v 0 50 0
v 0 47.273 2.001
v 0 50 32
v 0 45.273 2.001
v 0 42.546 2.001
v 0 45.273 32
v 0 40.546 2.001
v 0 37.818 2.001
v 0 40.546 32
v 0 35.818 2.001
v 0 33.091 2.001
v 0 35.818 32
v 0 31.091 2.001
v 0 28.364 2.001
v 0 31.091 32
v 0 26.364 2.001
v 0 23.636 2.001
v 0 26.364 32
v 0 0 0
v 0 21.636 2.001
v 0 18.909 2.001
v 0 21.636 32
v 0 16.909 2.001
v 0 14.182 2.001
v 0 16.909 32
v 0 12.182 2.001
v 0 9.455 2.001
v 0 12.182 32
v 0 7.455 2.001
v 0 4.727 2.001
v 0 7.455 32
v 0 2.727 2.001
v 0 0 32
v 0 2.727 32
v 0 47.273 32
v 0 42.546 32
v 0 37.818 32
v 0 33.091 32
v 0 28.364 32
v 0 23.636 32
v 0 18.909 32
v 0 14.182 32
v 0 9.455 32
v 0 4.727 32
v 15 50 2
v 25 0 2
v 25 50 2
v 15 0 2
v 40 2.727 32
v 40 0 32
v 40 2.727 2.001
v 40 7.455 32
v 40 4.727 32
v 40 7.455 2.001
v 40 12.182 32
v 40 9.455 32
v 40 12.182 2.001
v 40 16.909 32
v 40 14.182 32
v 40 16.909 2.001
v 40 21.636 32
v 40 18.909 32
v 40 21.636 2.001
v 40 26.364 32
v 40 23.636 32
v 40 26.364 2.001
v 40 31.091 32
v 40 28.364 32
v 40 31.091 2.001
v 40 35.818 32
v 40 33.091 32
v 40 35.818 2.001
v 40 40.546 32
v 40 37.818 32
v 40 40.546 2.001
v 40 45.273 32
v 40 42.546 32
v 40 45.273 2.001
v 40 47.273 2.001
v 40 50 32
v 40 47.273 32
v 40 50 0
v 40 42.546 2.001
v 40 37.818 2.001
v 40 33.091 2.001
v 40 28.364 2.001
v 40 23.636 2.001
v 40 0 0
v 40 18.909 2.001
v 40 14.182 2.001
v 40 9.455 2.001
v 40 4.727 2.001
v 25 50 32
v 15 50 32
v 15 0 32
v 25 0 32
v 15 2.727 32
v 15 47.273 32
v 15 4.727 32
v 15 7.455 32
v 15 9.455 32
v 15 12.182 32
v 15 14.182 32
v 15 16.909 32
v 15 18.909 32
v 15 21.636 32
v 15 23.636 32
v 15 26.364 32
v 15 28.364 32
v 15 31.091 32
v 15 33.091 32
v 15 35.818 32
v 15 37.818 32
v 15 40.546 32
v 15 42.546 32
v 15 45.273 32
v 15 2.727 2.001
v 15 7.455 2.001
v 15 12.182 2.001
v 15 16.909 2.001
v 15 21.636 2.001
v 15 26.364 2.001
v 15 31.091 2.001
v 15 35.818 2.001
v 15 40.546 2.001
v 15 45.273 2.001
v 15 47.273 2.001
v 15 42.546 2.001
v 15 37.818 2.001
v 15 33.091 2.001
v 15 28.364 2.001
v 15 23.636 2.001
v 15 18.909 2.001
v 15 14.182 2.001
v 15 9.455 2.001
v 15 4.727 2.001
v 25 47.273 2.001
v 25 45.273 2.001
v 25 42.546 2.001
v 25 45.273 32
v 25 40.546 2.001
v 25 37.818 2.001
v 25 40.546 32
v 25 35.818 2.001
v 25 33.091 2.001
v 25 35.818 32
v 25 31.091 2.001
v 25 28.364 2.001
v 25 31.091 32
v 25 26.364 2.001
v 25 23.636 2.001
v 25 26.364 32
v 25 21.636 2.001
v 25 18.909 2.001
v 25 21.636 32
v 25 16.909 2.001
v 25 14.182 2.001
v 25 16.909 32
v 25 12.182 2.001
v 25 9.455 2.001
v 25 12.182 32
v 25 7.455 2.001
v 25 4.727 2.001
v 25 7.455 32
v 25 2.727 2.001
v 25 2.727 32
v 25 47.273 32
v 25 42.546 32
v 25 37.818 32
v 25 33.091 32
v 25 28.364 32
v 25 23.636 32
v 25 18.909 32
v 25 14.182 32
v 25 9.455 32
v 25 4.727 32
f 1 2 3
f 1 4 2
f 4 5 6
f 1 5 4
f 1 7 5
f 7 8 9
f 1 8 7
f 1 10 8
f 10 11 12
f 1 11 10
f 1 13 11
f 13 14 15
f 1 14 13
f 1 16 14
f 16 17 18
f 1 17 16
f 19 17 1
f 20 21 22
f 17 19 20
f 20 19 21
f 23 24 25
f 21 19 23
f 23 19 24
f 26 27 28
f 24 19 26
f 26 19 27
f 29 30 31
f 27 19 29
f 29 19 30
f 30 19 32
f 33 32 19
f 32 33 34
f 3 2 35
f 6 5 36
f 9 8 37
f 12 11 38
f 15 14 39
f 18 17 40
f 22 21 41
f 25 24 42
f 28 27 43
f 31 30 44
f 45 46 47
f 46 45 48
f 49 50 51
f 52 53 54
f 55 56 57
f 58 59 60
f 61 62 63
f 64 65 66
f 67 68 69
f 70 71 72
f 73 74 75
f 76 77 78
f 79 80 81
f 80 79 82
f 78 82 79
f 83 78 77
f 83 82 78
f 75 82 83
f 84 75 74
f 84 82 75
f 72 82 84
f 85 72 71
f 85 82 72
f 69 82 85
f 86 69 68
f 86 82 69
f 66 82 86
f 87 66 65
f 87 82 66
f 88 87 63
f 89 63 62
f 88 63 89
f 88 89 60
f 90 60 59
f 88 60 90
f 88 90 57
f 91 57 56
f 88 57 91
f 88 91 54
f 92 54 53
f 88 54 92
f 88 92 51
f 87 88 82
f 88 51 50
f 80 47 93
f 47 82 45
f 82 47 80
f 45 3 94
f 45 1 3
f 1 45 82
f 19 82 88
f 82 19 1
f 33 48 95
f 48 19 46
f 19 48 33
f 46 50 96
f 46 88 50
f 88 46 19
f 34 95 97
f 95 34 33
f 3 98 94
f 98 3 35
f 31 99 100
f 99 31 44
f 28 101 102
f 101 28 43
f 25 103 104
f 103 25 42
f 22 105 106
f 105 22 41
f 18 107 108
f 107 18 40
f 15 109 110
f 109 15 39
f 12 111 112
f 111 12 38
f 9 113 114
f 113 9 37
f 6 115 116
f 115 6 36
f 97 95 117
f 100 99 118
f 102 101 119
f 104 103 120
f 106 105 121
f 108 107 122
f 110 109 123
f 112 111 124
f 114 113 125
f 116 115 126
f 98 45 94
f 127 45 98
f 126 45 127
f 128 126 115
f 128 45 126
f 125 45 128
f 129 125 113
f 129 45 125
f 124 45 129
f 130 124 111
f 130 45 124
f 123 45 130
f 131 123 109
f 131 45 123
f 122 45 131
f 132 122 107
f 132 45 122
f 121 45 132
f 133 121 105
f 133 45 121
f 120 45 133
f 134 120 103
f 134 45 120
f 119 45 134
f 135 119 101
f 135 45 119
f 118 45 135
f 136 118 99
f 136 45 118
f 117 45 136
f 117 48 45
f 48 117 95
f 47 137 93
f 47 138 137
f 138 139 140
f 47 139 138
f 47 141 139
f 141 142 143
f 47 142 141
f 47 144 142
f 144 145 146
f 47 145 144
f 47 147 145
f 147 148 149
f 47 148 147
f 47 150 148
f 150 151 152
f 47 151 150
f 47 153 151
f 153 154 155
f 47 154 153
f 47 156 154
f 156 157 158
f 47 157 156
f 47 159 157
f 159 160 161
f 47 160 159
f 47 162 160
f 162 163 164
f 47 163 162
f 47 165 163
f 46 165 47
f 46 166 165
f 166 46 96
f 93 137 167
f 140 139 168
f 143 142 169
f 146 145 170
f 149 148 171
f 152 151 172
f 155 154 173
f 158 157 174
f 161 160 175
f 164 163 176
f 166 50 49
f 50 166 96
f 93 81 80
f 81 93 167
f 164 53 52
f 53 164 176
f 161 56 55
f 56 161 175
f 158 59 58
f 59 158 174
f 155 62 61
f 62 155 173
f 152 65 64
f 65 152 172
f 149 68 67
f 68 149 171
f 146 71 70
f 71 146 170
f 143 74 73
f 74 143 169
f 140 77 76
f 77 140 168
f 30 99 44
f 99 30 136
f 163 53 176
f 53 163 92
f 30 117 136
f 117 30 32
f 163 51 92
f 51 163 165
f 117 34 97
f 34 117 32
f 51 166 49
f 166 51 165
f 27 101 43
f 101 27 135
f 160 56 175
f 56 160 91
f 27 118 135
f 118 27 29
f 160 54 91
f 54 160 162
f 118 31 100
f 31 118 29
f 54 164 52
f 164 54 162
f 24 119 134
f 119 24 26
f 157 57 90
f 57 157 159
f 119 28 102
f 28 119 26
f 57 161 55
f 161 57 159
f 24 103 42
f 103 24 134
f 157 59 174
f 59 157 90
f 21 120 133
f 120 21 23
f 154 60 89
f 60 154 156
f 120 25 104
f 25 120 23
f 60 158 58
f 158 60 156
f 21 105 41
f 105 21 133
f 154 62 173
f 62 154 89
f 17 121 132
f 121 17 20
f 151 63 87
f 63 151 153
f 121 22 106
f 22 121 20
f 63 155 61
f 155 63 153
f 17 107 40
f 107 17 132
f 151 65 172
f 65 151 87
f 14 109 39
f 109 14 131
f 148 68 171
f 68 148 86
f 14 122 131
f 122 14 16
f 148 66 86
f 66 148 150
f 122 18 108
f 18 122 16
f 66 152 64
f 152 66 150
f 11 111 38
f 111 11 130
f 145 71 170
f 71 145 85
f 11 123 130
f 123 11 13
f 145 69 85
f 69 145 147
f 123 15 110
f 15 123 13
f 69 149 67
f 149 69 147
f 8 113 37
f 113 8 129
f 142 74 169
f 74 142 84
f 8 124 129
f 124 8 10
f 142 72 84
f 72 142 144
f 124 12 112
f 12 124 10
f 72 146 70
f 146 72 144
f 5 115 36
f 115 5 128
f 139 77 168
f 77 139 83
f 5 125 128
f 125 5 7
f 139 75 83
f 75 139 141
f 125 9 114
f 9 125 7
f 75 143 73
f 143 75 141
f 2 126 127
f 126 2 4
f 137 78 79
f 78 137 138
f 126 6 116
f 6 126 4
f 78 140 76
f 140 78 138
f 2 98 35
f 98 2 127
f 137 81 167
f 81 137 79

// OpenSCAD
// Generated by SolidPython 1.0.5 on 2021-08-30 19:40:50


difference() {
	union() {
		cube(size = [40, 50, 2.0000000000]);
		translate(v = [0, 0, 2.0000000000]) {
			cube(size = [15.0000000000, 50, 30]);
		}
		translate(v = [25.0000000000, 0, 2.0000000000]) {
			cube(size = [15.0000000000, 50, 30]);
		}
	}
	translate(v = [-0.0010000000, 2.7272727272727275, 2.0010000000]) {
		cube(size = [40.0020000000, 2.0000000000, 30.0010000000]);
	}
	translate(v = [-0.0010000000, 7.454545454545455, 2.0010000000]) {
		cube(size = [40.0020000000, 2.0000000000, 30.0010000000]);
	}
	translate(v = [-0.0010000000, 12.181818181818183, 2.0010000000]) {
		cube(size = [40.0020000000, 2.0000000000, 30.0010000000]);
	}
	translate(v = [-0.0010000000, 16.90909090909091, 2.0010000000]) {
		cube(size = [40.0020000000, 2.0000000000, 30.0010000000]);
	}
	translate(v = [-0.0010000000, 21.636363636363637, 2.0010000000]) {
		cube(size = [40.0020000000, 2.0000000000, 30.0010000000]);
	}
	translate(v = [-0.0010000000, 26.363636363636367, 2.0010000000]) {
		cube(size = [40.0020000000, 2.0000000000, 30.0010000000]);
	}
	translate(v = [-0.0010000000, 31.090909090909093, 2.0010000000]) {
		cube(size = [40.0020000000, 2.0000000000, 30.0010000000]);
	}
	translate(v = [-0.0010000000, 35.81818181818182, 2.0010000000]) {
		cube(size = [40.0020000000, 2.0000000000, 30.0010000000]);
	}
	translate(v = [-0.0010000000, 40.54545454545455, 2.0010000000]) {
		cube(size = [40.0020000000, 2.0000000000, 30.0010000000]);
	}
	translate(v = [-0.0010000000, 45.27272727272727, 2.0010000000]) {
		cube(size = [40.0020000000, 2.0000000000, 30.0010000000]);
	}
}
/***********************************************
*********      SolidPython code:      **********
************************************************
 
from solid import *
from solid.utils import *
from numpy import linspace

cm = 10

count = 12
gap = 0.2*cm
middle_gap = 1*cm

width = 4*cm
length = 5*cm
height = 3*cm

wall_thickness = (width - middle_gap) / 2
bottom_thickness = 0.2*cm
z = 0.001

bottom = cube([width, length, bottom_thickness])
left_wall = translate([0, 0, bottom_thickness])(
    cube([wall_thickness, length, height]))
right_wall = translate([width-wall_thickness, 0, bottom_thickness]
                       )(cube([wall_thickness, length, height]))

gaps = []
for i in linspace(-gap, length, count)[1:-1]:
    gaps.append(translate([-z, i, bottom_thickness+z])(
        cube([width+z*2, gap, height+z])))

scad_render_to_file(bottom + left_wall + right_wall -
                    gaps, "resistor-holder.scad")
 
 
************************************************/
